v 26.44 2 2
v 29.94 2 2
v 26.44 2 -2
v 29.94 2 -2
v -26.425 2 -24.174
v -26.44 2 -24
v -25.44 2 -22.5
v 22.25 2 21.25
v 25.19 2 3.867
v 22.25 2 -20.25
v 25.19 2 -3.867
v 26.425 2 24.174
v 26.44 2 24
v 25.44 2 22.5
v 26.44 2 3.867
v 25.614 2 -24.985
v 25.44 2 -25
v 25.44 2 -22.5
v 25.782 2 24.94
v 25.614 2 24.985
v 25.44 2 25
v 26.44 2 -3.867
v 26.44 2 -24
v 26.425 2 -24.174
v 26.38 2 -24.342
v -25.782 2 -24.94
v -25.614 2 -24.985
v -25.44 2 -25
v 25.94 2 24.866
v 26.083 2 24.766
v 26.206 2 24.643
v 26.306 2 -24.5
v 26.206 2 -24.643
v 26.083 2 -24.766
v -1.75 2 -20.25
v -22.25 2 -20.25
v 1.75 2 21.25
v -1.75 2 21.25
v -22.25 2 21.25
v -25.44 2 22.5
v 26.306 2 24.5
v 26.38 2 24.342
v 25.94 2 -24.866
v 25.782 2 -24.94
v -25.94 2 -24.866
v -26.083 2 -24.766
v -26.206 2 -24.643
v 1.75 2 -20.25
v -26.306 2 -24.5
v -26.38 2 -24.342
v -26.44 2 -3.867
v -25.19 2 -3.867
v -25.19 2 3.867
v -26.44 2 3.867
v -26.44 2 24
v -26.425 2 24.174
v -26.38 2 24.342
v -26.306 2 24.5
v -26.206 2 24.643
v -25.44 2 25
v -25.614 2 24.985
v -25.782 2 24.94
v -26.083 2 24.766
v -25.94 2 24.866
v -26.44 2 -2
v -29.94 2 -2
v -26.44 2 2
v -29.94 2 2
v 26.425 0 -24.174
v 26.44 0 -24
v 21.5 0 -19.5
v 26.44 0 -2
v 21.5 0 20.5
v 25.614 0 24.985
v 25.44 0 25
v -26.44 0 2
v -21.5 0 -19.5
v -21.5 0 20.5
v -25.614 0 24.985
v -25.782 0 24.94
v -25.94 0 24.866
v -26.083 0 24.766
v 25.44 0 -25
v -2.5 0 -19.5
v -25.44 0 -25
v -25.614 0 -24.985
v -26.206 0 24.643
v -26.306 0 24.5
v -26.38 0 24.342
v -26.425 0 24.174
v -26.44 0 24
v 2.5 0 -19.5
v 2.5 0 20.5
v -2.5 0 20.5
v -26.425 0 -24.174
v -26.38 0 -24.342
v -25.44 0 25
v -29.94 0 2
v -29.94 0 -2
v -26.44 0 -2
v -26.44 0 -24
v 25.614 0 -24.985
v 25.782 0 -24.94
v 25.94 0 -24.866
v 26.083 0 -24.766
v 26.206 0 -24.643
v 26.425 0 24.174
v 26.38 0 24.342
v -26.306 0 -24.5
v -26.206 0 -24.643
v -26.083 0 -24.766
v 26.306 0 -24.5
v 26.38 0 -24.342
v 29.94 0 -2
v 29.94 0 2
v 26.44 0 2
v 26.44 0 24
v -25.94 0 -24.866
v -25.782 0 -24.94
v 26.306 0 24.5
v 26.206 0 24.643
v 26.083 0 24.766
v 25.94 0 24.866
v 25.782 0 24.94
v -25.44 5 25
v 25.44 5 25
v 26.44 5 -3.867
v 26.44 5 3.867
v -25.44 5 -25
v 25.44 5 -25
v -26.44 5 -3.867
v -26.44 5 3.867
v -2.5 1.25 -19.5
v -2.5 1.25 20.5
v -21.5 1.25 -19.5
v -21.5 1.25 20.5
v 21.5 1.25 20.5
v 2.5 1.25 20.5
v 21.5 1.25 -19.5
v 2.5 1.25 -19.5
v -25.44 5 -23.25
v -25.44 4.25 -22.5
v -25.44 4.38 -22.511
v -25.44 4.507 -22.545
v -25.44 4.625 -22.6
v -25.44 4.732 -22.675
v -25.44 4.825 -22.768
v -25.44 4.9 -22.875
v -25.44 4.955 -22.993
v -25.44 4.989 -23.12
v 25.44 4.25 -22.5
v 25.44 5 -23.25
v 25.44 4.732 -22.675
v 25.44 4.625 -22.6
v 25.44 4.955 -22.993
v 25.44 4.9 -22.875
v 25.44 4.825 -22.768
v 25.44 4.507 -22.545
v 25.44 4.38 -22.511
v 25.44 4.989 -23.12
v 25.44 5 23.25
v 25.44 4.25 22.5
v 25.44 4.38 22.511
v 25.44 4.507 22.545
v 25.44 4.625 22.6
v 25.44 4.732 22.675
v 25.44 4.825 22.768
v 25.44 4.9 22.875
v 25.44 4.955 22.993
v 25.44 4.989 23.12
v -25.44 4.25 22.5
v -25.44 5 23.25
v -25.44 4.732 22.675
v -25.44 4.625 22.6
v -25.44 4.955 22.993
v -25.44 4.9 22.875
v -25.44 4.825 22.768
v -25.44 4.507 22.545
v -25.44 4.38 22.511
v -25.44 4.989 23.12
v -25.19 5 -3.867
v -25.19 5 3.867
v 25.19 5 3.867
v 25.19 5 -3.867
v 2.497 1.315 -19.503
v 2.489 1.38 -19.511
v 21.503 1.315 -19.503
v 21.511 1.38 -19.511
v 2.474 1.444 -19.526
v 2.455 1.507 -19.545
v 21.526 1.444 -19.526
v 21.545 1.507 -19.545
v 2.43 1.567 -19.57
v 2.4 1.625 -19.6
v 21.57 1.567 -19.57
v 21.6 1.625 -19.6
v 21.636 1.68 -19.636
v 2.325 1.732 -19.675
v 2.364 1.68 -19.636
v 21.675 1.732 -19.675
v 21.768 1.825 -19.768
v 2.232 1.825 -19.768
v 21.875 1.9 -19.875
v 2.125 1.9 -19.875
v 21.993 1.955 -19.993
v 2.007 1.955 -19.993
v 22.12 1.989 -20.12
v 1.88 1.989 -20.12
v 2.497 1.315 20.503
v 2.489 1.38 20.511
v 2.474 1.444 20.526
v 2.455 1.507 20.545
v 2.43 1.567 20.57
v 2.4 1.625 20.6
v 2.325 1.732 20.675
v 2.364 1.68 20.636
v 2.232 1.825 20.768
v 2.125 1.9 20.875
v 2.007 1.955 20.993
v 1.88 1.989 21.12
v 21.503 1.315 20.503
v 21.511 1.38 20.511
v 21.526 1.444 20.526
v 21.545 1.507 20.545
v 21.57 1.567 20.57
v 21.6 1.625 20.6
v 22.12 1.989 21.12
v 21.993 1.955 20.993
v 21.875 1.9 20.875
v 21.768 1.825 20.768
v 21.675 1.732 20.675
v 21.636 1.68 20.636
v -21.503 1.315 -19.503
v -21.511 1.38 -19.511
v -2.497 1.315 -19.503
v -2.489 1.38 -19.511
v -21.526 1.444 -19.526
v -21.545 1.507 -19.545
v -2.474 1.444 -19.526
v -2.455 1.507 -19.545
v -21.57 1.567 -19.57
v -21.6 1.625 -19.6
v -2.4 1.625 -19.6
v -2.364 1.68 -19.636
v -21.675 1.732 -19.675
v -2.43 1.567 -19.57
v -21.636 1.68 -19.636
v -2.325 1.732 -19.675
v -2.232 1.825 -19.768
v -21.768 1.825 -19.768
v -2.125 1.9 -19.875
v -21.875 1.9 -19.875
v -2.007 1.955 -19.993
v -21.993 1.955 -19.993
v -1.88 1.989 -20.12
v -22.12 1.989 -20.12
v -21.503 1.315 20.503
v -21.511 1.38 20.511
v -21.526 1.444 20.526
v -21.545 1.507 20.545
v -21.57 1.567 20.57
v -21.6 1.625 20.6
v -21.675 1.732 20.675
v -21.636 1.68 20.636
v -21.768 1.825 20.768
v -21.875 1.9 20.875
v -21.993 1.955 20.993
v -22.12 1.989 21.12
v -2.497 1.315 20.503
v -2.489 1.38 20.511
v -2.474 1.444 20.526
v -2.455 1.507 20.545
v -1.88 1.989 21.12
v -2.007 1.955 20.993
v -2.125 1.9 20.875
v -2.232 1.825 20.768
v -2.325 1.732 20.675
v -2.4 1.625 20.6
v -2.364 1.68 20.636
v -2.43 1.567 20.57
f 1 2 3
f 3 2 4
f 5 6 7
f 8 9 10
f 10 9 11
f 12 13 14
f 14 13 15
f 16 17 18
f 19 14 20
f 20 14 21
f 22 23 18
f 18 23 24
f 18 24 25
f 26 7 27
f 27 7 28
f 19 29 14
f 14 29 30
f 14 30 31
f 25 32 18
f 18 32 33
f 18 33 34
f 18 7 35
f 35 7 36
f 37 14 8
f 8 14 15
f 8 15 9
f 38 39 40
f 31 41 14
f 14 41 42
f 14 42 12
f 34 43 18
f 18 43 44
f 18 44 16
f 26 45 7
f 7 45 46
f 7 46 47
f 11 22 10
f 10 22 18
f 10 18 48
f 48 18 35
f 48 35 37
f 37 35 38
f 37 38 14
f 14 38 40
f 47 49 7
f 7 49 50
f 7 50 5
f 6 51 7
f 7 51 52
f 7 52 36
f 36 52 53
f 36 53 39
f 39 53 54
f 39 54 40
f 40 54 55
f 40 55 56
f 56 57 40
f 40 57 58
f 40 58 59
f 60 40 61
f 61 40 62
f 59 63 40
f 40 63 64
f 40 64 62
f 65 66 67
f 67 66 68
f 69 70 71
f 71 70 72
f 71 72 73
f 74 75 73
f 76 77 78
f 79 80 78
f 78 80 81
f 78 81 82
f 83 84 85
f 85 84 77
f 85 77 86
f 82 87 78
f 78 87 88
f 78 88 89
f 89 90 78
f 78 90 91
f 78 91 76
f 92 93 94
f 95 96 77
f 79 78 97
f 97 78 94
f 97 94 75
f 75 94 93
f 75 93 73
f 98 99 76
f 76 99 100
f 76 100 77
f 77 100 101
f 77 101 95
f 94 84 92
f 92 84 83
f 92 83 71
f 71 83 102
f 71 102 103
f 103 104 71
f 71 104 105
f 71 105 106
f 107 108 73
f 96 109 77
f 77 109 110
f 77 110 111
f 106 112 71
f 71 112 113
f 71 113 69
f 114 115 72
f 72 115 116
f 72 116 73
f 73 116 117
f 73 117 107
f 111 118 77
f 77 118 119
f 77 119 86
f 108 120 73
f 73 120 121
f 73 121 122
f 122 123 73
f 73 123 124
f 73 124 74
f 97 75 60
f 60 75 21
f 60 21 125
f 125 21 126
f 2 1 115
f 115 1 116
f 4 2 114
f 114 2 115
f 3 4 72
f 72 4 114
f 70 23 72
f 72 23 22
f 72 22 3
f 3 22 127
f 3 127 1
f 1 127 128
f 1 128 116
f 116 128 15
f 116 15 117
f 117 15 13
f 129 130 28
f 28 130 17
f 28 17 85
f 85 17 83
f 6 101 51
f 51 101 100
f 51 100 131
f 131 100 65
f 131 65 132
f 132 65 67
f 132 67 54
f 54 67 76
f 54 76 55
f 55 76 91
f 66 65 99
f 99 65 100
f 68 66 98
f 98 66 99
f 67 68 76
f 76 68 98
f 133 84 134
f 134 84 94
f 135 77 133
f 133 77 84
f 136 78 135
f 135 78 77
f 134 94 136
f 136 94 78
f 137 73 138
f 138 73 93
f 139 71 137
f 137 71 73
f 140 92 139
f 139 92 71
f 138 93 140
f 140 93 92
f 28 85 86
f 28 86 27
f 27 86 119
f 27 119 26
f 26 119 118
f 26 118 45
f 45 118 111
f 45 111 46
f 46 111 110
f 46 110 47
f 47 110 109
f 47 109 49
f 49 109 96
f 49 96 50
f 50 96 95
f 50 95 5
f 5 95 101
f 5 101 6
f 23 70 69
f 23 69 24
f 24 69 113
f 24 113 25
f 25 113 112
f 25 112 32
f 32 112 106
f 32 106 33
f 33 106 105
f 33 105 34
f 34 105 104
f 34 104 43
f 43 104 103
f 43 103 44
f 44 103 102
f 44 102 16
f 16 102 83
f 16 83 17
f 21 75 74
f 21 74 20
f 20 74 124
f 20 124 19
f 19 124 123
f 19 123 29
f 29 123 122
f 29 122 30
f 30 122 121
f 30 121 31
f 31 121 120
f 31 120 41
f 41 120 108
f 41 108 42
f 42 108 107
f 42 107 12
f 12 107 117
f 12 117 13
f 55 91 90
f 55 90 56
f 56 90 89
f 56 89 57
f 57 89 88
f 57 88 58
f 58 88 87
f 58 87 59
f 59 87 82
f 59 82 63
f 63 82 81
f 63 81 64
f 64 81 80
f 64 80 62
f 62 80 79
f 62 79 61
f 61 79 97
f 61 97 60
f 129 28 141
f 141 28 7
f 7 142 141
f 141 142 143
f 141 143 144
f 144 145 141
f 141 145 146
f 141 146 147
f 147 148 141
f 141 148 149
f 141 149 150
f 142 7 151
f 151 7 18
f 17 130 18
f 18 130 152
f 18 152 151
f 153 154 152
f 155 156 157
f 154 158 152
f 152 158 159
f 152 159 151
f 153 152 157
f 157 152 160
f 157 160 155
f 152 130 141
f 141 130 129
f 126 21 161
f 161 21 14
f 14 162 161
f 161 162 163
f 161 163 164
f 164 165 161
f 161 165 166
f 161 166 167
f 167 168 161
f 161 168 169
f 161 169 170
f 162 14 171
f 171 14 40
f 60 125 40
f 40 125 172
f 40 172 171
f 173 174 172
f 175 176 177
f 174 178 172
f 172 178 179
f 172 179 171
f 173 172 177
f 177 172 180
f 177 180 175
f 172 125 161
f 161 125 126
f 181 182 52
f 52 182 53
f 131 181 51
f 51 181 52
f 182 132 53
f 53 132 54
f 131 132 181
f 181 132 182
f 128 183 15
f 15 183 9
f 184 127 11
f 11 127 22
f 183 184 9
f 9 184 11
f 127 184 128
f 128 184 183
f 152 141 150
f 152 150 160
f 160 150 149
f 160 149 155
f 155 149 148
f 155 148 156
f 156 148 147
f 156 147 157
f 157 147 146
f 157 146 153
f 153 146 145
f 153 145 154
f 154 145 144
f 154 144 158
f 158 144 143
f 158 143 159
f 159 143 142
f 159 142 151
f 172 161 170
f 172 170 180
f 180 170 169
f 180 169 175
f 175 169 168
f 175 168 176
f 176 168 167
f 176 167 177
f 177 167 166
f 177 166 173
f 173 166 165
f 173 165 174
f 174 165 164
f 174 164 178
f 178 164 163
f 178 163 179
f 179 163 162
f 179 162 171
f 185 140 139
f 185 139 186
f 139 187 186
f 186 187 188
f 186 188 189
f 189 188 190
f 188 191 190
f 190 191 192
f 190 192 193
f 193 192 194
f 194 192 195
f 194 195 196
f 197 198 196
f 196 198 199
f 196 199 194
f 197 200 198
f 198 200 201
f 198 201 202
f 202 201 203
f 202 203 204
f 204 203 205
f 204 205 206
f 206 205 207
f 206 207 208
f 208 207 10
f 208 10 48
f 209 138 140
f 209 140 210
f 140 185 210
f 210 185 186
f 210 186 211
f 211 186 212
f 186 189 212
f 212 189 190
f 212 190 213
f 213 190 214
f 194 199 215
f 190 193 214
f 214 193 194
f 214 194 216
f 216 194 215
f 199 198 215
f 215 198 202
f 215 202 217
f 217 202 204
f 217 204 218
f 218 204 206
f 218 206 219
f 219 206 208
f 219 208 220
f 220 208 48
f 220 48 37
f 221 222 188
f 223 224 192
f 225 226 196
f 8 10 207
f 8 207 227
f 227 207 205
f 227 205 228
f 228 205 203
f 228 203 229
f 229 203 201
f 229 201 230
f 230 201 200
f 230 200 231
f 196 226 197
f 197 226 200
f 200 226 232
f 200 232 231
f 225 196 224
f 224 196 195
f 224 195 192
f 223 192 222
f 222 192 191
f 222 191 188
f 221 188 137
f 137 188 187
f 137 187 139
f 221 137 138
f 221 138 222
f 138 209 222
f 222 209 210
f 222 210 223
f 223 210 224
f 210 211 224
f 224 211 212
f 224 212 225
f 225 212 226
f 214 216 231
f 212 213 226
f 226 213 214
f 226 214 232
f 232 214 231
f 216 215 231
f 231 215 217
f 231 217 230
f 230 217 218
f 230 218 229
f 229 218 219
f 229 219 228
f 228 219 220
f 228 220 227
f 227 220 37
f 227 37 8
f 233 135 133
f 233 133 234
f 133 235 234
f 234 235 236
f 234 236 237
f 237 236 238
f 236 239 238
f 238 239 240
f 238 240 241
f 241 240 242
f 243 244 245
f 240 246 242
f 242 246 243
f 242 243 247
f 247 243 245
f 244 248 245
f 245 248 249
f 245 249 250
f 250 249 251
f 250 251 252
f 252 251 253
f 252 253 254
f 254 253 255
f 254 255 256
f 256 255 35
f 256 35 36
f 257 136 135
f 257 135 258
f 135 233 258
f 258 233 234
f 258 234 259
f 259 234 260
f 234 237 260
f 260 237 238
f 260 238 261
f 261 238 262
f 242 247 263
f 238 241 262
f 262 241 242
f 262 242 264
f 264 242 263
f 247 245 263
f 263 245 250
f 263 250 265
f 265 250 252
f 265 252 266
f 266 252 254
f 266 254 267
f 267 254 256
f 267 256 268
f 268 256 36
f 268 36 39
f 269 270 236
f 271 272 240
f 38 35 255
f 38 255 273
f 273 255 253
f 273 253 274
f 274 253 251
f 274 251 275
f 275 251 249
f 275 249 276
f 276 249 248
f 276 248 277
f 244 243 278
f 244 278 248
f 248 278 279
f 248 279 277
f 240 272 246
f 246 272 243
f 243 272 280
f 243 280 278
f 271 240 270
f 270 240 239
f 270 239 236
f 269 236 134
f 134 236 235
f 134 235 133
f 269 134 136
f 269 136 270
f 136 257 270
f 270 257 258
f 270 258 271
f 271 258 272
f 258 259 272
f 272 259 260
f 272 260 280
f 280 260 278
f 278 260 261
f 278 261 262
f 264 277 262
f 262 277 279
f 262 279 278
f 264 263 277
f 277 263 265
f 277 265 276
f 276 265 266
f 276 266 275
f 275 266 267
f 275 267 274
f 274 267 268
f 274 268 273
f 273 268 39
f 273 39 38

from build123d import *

# Parameters (mm, degrees)
CROQUIS1_W              = 19
CROQUIS1_H              = 40
SALIENTE_EXTRUIR1_DEPTH = 2
REDONDEO1_R             = 1
CROQUIS2_W              = 50.88
CROQUIS2_H              = 2.5
CROQUIS2_W_2            = 1.25
CROQUIS2_H_2            = 7.733481074
SALIENTE_EXTRUIR2_DEPTH = 3
REDONDEO2_R             = 0.75


with BuildPart() as part:
    # Croquis1 → Saliente-Extruir1 (new body)
    with BuildSketch(Plane(origin=(0, 0, 0), x_dir=(1, 0, 0), z_dir=(0, 1, 0))):
        Polygon((26.44, -25), (-26.44, -25), (-26.44, -2), (-29.94, -2), (-29.94, 2), (-26.44, 2), (-26.44, 25), (26.44, 25), (26.44, 2), (29.94, 2), (29.94, -2), (26.44, -2), align=None)
        with Locations((12, -0.5)):
            Rectangle(CROQUIS1_W, CROQUIS1_H, mode=Mode.SUBTRACT)
        with Locations((-12, -0.5)):
            Rectangle(CROQUIS1_W, CROQUIS1_H, mode=Mode.SUBTRACT)
    extrude(amount=SALIENTE_EXTRUIR1_DEPTH)

    # Redondeo1
    redondeo1_edges = [part.edges().sort_by_distance(p)[0] for p in [
        (-26.44, 1, -25),
        (26.44, 1, -25),
        (26.44, 1, 25),
        (-26.44, 1, 25),
    ]]
    fillet(redondeo1_edges, radius=REDONDEO1_R)

    # Croquis2 → Saliente-Extruir2 (add)
    with BuildSketch(Plane(origin=(0, 2, 0), x_dir=(1, 0, 0), z_dir=(0, 1, 0))):
        with Locations((0, 23.75)):
            Rectangle(CROQUIS2_W, CROQUIS2_H)
        with Locations((0, -23.75)):
            Rectangle(CROQUIS2_W, CROQUIS2_H)
        with Locations((-25.815, 0)):
            Rectangle(CROQUIS2_W_2, CROQUIS2_H_2)
        with Locations((25.815, 0)):
            Rectangle(CROQUIS2_W_2, CROQUIS2_H_2)
    extrude(amount=SALIENTE_EXTRUIR2_DEPTH)

    # Redondeo2
    redondeo2_edges = [part.edges().sort_by_distance(p)[0] for p in [
        (0, 5, 22.5),
        (-2.5, 2, 0.5),
        (-12, 2, -19.5),
        (-21.5, 2, 0.5),
        (-12, 2, 20.5),
        (12, 2, 20.5),
        (21.5, 2, 0.5),
        (12, 2, -19.5),
        (2.5, 2, 0.5),
        (0, 5, -22.5),
    ]]
    fillet(redondeo2_edges, radius=REDONDEO2_R)


solid = part.part
